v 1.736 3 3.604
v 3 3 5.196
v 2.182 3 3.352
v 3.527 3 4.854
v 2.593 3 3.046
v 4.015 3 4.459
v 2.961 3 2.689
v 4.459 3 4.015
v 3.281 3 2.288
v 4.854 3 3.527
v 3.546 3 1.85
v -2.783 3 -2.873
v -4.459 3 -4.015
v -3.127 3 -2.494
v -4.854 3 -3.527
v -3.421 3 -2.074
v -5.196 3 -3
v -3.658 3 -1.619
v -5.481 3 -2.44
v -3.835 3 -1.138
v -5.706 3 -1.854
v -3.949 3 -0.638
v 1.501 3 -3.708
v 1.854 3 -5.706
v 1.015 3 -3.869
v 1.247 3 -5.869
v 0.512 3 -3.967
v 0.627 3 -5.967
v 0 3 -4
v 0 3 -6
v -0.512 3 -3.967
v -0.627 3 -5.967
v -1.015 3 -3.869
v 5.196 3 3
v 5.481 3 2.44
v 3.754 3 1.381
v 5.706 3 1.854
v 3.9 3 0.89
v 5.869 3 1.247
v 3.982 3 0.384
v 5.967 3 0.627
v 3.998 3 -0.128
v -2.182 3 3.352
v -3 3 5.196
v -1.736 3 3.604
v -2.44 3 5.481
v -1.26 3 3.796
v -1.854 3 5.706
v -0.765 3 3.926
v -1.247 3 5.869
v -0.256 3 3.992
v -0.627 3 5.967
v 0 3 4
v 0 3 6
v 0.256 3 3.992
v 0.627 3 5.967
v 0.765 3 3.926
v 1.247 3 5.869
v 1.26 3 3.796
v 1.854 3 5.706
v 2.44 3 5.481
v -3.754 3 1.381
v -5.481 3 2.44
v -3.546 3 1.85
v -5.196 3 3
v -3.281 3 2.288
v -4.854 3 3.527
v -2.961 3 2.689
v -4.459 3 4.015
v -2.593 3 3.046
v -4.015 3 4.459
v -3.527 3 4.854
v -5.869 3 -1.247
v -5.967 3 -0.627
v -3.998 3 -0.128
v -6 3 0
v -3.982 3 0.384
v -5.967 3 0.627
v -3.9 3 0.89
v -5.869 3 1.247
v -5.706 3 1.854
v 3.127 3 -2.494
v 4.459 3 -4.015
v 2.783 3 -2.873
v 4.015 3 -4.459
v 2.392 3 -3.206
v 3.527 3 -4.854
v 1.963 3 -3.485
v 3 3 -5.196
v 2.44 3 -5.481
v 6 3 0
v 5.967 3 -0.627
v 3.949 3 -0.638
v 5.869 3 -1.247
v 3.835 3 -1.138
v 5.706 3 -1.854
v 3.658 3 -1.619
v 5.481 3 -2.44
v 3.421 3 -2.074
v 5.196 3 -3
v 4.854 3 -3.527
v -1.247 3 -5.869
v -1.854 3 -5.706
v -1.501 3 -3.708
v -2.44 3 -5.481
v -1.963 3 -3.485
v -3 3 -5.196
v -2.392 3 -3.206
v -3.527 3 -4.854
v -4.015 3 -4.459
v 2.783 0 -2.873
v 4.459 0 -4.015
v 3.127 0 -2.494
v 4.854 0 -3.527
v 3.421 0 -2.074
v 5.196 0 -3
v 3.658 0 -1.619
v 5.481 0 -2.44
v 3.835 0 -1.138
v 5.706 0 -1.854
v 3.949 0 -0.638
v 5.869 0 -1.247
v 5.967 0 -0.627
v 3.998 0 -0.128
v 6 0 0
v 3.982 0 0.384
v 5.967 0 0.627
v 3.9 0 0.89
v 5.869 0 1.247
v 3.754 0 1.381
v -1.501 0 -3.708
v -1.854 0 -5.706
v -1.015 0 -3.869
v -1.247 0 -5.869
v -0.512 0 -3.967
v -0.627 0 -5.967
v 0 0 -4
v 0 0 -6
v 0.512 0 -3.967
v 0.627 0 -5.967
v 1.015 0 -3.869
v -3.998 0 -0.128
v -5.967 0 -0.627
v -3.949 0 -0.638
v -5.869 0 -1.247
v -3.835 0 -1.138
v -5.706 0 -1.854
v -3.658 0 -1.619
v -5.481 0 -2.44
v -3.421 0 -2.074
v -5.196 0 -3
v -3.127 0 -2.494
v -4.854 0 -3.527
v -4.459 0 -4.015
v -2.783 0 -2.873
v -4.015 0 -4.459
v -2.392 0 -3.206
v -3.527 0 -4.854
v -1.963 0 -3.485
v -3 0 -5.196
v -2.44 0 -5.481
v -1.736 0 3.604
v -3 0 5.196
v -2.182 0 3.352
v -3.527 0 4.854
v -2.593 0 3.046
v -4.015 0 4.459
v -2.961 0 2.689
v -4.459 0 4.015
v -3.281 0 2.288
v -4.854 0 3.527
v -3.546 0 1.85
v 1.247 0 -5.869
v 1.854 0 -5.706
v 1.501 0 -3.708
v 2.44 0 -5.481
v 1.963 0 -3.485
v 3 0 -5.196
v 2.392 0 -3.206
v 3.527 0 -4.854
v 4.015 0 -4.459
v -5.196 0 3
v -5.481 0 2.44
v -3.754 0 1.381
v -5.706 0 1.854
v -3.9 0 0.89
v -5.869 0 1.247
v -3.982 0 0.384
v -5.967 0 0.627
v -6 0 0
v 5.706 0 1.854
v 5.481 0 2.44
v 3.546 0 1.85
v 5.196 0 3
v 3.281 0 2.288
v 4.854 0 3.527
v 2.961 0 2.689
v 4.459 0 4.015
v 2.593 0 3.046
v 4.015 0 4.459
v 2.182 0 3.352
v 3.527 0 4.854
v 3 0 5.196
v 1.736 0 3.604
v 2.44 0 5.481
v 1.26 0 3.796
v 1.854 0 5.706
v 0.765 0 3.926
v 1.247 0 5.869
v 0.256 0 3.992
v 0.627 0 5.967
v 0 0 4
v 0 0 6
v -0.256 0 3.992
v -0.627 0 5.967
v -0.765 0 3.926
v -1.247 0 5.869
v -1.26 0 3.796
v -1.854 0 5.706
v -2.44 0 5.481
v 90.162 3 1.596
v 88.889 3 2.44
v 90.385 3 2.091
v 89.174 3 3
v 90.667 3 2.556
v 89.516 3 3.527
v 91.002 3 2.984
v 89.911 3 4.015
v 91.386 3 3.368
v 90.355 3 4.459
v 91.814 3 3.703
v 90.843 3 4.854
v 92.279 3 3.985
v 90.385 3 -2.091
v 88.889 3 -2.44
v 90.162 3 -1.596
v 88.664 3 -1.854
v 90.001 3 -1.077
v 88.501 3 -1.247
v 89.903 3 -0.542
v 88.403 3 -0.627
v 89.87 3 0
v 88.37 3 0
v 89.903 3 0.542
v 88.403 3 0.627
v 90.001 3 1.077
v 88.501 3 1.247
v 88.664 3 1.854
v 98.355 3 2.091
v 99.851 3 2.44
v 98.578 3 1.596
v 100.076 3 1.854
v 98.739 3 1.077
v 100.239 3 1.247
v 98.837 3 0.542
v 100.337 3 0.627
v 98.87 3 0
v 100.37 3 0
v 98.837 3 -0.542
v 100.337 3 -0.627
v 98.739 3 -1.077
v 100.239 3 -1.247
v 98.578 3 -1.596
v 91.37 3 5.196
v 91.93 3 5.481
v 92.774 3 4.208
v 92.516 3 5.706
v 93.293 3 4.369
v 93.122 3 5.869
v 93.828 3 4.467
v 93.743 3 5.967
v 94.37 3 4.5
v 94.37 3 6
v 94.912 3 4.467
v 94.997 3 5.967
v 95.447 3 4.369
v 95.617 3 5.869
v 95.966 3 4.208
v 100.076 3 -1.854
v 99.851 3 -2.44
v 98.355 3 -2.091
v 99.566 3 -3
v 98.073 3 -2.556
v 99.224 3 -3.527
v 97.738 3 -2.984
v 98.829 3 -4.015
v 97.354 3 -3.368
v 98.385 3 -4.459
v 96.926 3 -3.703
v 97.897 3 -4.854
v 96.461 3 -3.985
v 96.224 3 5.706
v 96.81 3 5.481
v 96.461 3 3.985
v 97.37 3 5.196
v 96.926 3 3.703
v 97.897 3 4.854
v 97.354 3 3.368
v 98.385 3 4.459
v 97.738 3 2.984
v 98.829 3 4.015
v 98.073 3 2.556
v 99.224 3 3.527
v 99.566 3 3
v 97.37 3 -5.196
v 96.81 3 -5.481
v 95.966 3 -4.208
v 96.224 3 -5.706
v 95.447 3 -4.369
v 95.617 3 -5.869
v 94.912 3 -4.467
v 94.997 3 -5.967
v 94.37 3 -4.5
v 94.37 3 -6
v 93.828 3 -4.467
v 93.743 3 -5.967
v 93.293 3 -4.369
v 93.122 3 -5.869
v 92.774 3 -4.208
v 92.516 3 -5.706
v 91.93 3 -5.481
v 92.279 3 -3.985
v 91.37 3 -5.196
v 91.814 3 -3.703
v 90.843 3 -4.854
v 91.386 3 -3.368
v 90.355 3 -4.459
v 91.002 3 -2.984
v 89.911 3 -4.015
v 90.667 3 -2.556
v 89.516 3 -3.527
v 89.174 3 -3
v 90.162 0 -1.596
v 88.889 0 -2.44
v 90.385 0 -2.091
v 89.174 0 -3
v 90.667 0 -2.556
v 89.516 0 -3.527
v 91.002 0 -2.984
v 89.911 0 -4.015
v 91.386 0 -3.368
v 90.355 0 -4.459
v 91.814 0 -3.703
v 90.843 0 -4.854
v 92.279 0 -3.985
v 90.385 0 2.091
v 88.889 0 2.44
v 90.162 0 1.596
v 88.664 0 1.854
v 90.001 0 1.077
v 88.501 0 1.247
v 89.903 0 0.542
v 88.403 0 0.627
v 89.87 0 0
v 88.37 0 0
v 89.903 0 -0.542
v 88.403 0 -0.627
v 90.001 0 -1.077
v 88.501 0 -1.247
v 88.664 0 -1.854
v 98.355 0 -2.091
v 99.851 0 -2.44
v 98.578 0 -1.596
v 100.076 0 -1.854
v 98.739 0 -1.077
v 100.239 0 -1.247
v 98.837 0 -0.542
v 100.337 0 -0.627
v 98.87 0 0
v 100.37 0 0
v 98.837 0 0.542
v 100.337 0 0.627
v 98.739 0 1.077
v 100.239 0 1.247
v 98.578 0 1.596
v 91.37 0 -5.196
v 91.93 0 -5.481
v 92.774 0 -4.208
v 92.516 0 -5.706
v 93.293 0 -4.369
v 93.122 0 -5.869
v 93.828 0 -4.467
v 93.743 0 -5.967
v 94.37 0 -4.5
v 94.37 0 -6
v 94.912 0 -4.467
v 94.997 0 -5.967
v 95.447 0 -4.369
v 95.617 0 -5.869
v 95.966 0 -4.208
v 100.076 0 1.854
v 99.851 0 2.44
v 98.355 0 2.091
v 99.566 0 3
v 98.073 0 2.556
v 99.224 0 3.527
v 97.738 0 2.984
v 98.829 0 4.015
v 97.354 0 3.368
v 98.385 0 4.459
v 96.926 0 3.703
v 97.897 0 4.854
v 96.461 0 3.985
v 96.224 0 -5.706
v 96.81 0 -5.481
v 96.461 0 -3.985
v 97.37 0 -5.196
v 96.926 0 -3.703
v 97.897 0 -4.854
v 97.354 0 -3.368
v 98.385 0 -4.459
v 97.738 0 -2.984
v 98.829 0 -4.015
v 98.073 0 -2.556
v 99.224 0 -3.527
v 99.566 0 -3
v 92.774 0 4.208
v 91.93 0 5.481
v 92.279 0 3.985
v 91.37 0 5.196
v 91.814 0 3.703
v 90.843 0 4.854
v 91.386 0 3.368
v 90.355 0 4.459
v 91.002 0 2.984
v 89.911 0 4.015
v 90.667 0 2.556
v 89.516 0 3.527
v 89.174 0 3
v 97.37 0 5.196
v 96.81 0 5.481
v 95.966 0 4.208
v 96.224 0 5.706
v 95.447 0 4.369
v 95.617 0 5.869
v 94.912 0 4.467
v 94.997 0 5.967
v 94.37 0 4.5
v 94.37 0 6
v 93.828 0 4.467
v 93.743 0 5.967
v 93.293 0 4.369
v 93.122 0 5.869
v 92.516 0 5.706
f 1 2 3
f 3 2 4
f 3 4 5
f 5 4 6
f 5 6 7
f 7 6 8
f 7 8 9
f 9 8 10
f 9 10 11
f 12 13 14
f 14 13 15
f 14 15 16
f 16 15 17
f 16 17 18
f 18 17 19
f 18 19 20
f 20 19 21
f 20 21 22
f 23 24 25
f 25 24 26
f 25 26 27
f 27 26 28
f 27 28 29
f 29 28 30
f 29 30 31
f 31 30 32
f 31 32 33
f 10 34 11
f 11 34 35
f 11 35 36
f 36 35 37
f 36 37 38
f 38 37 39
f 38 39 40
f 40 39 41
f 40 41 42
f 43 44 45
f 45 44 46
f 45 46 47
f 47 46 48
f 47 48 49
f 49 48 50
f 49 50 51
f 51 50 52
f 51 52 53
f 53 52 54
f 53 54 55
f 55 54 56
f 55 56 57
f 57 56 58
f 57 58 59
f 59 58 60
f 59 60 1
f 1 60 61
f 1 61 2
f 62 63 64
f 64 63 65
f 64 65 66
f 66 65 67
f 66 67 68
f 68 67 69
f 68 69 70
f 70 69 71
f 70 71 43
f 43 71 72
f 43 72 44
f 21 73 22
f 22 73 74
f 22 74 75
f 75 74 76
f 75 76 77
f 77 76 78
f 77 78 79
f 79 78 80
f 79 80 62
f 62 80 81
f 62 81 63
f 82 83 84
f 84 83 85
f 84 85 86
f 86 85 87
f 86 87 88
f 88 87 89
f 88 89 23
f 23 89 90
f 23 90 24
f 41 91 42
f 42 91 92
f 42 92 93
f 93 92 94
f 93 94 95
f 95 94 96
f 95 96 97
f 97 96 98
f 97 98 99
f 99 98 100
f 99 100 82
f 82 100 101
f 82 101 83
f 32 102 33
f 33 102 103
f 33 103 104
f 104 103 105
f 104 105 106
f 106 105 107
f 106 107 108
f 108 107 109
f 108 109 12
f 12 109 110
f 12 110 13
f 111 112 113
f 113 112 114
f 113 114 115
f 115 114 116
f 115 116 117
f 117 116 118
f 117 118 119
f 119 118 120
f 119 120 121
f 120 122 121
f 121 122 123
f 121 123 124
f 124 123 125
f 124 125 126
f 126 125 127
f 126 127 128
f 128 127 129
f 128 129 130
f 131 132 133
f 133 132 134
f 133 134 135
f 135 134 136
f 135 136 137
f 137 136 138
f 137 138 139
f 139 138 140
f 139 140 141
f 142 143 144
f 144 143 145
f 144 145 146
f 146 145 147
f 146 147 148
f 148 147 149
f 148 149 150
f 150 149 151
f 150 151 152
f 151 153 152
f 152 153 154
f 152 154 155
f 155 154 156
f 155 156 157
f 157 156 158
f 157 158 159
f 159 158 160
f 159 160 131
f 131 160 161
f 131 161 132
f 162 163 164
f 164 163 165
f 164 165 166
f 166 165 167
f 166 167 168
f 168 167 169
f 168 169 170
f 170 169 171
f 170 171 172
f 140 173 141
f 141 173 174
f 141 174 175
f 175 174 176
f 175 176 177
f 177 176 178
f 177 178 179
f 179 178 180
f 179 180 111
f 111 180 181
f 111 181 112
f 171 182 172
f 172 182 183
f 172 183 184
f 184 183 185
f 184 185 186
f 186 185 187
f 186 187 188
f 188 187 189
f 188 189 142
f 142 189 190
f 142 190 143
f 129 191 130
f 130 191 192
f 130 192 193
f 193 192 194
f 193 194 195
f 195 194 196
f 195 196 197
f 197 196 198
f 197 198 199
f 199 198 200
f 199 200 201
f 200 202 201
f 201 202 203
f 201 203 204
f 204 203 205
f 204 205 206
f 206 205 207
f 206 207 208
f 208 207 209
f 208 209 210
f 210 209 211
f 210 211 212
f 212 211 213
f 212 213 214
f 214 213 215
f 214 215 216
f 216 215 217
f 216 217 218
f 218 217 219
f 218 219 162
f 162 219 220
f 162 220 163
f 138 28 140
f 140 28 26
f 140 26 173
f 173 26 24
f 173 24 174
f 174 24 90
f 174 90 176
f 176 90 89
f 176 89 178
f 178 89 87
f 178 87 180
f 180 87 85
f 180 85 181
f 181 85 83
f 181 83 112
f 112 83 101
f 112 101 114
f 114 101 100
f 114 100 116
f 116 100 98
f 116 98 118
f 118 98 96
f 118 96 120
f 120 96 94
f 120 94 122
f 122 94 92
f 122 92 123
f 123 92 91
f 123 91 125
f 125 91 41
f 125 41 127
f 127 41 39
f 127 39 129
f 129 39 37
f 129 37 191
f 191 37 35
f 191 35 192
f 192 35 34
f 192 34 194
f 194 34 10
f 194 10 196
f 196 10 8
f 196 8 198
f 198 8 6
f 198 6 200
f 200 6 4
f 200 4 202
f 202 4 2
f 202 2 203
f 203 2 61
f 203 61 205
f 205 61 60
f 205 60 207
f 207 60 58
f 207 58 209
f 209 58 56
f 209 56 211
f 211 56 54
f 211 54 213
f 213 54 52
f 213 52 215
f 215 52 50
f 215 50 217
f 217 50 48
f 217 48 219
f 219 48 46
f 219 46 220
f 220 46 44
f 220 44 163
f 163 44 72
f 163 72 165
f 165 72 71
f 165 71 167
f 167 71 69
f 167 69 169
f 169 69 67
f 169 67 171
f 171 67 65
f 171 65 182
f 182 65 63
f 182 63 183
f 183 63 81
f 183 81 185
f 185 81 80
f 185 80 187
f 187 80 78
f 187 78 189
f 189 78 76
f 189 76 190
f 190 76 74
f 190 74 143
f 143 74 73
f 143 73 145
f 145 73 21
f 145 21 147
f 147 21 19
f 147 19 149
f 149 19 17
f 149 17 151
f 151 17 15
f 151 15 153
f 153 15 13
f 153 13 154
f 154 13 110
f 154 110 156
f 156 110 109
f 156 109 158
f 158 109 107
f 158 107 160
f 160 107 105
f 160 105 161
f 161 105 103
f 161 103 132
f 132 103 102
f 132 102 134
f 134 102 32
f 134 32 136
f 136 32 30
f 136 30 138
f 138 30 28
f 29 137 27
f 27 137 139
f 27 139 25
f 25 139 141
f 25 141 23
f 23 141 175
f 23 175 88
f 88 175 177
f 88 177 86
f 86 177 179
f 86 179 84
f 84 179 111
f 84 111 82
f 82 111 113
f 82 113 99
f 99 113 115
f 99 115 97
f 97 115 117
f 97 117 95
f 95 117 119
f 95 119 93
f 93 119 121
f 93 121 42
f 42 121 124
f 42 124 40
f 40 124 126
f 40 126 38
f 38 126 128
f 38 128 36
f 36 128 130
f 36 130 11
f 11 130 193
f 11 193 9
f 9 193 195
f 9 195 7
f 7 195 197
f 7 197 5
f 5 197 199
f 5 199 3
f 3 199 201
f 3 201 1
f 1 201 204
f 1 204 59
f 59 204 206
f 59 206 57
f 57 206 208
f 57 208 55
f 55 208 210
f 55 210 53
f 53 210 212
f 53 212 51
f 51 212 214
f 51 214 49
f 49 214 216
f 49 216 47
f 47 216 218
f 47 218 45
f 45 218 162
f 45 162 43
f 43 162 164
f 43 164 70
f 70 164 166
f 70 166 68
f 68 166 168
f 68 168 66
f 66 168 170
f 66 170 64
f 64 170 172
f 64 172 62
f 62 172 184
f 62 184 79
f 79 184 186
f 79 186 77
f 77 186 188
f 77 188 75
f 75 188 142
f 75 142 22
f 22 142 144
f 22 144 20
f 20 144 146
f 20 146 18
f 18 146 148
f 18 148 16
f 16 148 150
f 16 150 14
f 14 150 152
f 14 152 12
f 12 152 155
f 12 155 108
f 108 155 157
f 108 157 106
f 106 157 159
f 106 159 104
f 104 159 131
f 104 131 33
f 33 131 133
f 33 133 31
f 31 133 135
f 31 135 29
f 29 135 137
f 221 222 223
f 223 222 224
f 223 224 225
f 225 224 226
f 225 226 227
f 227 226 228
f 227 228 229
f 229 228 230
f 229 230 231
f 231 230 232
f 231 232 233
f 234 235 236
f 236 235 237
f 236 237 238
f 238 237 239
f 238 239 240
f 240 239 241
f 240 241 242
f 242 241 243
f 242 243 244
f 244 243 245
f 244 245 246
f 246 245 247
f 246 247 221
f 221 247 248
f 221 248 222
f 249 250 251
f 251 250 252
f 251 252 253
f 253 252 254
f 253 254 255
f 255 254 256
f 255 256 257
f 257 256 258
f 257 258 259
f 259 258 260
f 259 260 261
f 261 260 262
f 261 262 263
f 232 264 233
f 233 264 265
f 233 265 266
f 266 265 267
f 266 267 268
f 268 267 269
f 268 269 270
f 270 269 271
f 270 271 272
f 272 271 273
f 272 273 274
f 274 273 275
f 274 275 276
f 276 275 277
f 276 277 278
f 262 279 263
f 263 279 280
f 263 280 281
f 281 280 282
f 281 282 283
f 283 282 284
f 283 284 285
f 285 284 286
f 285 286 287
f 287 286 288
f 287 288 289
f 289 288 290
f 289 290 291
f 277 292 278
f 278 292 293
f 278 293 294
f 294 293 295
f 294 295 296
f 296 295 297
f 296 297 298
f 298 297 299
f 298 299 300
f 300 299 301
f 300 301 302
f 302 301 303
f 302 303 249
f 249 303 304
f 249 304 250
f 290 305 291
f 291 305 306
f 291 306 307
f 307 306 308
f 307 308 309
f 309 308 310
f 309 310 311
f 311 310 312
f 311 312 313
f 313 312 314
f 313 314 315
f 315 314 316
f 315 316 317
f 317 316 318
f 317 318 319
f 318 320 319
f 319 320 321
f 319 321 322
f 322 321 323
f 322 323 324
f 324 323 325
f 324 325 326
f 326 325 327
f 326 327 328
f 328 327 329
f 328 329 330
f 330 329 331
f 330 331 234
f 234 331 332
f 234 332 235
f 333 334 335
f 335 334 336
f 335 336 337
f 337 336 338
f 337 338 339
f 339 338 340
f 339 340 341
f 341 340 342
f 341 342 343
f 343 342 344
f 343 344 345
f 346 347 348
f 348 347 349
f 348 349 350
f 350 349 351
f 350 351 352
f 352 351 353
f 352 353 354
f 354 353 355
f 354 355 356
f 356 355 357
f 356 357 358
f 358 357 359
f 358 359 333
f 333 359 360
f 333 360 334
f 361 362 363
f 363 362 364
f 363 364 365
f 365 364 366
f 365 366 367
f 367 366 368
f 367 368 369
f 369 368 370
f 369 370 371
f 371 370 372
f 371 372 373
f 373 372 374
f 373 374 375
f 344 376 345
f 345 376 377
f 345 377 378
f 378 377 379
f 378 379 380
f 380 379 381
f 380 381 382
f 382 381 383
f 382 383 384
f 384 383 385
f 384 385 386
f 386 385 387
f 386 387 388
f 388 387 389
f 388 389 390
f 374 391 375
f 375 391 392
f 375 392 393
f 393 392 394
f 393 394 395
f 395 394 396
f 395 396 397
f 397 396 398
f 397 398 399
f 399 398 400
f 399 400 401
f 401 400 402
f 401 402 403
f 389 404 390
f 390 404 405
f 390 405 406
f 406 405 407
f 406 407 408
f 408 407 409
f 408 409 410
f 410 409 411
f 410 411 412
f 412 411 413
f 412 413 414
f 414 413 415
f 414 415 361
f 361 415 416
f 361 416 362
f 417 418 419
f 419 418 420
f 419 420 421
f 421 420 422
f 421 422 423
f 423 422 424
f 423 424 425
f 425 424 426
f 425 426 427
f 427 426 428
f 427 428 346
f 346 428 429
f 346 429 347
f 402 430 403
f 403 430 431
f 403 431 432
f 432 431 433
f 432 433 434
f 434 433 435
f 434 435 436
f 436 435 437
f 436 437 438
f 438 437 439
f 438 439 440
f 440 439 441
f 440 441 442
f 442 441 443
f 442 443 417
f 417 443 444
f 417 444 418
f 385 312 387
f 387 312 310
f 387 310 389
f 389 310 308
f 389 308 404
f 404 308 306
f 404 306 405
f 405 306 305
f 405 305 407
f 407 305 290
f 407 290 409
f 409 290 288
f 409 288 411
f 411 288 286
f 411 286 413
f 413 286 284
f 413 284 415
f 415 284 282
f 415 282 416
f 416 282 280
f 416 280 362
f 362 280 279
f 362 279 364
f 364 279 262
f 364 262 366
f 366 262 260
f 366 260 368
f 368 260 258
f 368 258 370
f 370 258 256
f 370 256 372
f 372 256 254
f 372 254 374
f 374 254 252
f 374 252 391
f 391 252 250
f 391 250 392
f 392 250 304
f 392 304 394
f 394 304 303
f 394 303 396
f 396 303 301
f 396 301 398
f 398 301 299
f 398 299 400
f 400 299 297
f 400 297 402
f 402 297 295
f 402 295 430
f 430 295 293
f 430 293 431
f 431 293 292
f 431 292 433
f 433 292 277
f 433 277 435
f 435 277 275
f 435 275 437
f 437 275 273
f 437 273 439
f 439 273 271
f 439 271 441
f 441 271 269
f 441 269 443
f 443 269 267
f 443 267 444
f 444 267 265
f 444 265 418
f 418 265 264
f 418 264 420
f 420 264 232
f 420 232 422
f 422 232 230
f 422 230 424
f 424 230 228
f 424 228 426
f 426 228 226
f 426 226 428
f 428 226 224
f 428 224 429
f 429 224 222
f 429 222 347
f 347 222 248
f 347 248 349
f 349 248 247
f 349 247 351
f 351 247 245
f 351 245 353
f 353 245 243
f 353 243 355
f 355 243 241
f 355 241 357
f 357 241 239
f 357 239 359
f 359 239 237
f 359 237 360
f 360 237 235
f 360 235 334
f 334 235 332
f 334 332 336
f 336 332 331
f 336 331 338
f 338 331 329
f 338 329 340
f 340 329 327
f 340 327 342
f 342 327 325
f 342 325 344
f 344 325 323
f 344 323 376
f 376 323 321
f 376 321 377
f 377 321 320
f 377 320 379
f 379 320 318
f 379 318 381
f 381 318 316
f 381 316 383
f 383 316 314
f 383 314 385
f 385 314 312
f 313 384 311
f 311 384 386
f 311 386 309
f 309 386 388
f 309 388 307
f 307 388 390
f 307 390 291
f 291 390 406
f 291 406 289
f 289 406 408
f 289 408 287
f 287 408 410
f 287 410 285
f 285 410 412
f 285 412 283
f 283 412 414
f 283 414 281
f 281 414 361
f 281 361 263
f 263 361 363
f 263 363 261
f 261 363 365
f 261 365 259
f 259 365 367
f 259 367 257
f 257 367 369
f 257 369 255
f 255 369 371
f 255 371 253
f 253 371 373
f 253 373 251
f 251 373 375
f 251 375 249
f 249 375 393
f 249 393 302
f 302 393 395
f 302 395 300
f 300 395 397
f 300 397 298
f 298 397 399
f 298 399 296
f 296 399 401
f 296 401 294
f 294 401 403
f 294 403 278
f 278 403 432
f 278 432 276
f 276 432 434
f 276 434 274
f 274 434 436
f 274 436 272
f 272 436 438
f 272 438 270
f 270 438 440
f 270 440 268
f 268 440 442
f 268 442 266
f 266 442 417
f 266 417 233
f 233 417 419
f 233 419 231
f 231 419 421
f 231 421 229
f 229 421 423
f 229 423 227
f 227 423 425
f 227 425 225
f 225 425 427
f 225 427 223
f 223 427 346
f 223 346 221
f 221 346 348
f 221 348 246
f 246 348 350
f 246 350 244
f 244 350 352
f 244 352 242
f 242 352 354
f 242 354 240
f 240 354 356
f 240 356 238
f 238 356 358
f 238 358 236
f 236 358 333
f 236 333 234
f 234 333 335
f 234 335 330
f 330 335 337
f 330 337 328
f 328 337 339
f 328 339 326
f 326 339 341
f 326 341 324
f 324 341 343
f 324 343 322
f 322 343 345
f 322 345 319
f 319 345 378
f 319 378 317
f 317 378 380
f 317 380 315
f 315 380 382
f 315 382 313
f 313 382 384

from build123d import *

# Parameters (mm, degrees)
SKETCH1_R             = 6
SKETCH1_R_2           = 4
BOSS_EXTRUDE1_DEPTH   = 3
SKETCH1_R_3           = 4.5
BOSS_EXTRUDE1_2_DEPTH = 3


with BuildPart() as part:
    # Sketch1 → Boss-Extrude1 (new body)
    with BuildSketch(Plane(origin=(0, 0, 0), x_dir=(1, 0, 0), z_dir=(0, 1, 0))):
        with Locations(Location((0, 0, 0), (0, 0, 270))):
            Circle(SKETCH1_R)
        with Locations(Location((0, 0, 0), (0, 0, 270))):
            Circle(SKETCH1_R_2, mode=Mode.SUBTRACT)
    extrude(amount=BOSS_EXTRUDE1_DEPTH)


with BuildPart() as body_2:
    # Sketch1 → Boss-Extrude1 2 (new body)
    with BuildSketch(Plane(origin=(0, 0, 0), x_dir=(1, 0, 0), z_dir=(0, 1, 0))):
        with Locations(Location((94.369960569, 0, 0), (0, 0, 270))):
            Circle(SKETCH1_R)
        with Locations(Location((94.369960569, 0, 0), (0, 0, 270))):
            Circle(SKETCH1_R_3, mode=Mode.SUBTRACT)
    extrude(amount=BOSS_EXTRUDE1_2_DEPTH)


solid = Compound([part.part, body_2.part])
